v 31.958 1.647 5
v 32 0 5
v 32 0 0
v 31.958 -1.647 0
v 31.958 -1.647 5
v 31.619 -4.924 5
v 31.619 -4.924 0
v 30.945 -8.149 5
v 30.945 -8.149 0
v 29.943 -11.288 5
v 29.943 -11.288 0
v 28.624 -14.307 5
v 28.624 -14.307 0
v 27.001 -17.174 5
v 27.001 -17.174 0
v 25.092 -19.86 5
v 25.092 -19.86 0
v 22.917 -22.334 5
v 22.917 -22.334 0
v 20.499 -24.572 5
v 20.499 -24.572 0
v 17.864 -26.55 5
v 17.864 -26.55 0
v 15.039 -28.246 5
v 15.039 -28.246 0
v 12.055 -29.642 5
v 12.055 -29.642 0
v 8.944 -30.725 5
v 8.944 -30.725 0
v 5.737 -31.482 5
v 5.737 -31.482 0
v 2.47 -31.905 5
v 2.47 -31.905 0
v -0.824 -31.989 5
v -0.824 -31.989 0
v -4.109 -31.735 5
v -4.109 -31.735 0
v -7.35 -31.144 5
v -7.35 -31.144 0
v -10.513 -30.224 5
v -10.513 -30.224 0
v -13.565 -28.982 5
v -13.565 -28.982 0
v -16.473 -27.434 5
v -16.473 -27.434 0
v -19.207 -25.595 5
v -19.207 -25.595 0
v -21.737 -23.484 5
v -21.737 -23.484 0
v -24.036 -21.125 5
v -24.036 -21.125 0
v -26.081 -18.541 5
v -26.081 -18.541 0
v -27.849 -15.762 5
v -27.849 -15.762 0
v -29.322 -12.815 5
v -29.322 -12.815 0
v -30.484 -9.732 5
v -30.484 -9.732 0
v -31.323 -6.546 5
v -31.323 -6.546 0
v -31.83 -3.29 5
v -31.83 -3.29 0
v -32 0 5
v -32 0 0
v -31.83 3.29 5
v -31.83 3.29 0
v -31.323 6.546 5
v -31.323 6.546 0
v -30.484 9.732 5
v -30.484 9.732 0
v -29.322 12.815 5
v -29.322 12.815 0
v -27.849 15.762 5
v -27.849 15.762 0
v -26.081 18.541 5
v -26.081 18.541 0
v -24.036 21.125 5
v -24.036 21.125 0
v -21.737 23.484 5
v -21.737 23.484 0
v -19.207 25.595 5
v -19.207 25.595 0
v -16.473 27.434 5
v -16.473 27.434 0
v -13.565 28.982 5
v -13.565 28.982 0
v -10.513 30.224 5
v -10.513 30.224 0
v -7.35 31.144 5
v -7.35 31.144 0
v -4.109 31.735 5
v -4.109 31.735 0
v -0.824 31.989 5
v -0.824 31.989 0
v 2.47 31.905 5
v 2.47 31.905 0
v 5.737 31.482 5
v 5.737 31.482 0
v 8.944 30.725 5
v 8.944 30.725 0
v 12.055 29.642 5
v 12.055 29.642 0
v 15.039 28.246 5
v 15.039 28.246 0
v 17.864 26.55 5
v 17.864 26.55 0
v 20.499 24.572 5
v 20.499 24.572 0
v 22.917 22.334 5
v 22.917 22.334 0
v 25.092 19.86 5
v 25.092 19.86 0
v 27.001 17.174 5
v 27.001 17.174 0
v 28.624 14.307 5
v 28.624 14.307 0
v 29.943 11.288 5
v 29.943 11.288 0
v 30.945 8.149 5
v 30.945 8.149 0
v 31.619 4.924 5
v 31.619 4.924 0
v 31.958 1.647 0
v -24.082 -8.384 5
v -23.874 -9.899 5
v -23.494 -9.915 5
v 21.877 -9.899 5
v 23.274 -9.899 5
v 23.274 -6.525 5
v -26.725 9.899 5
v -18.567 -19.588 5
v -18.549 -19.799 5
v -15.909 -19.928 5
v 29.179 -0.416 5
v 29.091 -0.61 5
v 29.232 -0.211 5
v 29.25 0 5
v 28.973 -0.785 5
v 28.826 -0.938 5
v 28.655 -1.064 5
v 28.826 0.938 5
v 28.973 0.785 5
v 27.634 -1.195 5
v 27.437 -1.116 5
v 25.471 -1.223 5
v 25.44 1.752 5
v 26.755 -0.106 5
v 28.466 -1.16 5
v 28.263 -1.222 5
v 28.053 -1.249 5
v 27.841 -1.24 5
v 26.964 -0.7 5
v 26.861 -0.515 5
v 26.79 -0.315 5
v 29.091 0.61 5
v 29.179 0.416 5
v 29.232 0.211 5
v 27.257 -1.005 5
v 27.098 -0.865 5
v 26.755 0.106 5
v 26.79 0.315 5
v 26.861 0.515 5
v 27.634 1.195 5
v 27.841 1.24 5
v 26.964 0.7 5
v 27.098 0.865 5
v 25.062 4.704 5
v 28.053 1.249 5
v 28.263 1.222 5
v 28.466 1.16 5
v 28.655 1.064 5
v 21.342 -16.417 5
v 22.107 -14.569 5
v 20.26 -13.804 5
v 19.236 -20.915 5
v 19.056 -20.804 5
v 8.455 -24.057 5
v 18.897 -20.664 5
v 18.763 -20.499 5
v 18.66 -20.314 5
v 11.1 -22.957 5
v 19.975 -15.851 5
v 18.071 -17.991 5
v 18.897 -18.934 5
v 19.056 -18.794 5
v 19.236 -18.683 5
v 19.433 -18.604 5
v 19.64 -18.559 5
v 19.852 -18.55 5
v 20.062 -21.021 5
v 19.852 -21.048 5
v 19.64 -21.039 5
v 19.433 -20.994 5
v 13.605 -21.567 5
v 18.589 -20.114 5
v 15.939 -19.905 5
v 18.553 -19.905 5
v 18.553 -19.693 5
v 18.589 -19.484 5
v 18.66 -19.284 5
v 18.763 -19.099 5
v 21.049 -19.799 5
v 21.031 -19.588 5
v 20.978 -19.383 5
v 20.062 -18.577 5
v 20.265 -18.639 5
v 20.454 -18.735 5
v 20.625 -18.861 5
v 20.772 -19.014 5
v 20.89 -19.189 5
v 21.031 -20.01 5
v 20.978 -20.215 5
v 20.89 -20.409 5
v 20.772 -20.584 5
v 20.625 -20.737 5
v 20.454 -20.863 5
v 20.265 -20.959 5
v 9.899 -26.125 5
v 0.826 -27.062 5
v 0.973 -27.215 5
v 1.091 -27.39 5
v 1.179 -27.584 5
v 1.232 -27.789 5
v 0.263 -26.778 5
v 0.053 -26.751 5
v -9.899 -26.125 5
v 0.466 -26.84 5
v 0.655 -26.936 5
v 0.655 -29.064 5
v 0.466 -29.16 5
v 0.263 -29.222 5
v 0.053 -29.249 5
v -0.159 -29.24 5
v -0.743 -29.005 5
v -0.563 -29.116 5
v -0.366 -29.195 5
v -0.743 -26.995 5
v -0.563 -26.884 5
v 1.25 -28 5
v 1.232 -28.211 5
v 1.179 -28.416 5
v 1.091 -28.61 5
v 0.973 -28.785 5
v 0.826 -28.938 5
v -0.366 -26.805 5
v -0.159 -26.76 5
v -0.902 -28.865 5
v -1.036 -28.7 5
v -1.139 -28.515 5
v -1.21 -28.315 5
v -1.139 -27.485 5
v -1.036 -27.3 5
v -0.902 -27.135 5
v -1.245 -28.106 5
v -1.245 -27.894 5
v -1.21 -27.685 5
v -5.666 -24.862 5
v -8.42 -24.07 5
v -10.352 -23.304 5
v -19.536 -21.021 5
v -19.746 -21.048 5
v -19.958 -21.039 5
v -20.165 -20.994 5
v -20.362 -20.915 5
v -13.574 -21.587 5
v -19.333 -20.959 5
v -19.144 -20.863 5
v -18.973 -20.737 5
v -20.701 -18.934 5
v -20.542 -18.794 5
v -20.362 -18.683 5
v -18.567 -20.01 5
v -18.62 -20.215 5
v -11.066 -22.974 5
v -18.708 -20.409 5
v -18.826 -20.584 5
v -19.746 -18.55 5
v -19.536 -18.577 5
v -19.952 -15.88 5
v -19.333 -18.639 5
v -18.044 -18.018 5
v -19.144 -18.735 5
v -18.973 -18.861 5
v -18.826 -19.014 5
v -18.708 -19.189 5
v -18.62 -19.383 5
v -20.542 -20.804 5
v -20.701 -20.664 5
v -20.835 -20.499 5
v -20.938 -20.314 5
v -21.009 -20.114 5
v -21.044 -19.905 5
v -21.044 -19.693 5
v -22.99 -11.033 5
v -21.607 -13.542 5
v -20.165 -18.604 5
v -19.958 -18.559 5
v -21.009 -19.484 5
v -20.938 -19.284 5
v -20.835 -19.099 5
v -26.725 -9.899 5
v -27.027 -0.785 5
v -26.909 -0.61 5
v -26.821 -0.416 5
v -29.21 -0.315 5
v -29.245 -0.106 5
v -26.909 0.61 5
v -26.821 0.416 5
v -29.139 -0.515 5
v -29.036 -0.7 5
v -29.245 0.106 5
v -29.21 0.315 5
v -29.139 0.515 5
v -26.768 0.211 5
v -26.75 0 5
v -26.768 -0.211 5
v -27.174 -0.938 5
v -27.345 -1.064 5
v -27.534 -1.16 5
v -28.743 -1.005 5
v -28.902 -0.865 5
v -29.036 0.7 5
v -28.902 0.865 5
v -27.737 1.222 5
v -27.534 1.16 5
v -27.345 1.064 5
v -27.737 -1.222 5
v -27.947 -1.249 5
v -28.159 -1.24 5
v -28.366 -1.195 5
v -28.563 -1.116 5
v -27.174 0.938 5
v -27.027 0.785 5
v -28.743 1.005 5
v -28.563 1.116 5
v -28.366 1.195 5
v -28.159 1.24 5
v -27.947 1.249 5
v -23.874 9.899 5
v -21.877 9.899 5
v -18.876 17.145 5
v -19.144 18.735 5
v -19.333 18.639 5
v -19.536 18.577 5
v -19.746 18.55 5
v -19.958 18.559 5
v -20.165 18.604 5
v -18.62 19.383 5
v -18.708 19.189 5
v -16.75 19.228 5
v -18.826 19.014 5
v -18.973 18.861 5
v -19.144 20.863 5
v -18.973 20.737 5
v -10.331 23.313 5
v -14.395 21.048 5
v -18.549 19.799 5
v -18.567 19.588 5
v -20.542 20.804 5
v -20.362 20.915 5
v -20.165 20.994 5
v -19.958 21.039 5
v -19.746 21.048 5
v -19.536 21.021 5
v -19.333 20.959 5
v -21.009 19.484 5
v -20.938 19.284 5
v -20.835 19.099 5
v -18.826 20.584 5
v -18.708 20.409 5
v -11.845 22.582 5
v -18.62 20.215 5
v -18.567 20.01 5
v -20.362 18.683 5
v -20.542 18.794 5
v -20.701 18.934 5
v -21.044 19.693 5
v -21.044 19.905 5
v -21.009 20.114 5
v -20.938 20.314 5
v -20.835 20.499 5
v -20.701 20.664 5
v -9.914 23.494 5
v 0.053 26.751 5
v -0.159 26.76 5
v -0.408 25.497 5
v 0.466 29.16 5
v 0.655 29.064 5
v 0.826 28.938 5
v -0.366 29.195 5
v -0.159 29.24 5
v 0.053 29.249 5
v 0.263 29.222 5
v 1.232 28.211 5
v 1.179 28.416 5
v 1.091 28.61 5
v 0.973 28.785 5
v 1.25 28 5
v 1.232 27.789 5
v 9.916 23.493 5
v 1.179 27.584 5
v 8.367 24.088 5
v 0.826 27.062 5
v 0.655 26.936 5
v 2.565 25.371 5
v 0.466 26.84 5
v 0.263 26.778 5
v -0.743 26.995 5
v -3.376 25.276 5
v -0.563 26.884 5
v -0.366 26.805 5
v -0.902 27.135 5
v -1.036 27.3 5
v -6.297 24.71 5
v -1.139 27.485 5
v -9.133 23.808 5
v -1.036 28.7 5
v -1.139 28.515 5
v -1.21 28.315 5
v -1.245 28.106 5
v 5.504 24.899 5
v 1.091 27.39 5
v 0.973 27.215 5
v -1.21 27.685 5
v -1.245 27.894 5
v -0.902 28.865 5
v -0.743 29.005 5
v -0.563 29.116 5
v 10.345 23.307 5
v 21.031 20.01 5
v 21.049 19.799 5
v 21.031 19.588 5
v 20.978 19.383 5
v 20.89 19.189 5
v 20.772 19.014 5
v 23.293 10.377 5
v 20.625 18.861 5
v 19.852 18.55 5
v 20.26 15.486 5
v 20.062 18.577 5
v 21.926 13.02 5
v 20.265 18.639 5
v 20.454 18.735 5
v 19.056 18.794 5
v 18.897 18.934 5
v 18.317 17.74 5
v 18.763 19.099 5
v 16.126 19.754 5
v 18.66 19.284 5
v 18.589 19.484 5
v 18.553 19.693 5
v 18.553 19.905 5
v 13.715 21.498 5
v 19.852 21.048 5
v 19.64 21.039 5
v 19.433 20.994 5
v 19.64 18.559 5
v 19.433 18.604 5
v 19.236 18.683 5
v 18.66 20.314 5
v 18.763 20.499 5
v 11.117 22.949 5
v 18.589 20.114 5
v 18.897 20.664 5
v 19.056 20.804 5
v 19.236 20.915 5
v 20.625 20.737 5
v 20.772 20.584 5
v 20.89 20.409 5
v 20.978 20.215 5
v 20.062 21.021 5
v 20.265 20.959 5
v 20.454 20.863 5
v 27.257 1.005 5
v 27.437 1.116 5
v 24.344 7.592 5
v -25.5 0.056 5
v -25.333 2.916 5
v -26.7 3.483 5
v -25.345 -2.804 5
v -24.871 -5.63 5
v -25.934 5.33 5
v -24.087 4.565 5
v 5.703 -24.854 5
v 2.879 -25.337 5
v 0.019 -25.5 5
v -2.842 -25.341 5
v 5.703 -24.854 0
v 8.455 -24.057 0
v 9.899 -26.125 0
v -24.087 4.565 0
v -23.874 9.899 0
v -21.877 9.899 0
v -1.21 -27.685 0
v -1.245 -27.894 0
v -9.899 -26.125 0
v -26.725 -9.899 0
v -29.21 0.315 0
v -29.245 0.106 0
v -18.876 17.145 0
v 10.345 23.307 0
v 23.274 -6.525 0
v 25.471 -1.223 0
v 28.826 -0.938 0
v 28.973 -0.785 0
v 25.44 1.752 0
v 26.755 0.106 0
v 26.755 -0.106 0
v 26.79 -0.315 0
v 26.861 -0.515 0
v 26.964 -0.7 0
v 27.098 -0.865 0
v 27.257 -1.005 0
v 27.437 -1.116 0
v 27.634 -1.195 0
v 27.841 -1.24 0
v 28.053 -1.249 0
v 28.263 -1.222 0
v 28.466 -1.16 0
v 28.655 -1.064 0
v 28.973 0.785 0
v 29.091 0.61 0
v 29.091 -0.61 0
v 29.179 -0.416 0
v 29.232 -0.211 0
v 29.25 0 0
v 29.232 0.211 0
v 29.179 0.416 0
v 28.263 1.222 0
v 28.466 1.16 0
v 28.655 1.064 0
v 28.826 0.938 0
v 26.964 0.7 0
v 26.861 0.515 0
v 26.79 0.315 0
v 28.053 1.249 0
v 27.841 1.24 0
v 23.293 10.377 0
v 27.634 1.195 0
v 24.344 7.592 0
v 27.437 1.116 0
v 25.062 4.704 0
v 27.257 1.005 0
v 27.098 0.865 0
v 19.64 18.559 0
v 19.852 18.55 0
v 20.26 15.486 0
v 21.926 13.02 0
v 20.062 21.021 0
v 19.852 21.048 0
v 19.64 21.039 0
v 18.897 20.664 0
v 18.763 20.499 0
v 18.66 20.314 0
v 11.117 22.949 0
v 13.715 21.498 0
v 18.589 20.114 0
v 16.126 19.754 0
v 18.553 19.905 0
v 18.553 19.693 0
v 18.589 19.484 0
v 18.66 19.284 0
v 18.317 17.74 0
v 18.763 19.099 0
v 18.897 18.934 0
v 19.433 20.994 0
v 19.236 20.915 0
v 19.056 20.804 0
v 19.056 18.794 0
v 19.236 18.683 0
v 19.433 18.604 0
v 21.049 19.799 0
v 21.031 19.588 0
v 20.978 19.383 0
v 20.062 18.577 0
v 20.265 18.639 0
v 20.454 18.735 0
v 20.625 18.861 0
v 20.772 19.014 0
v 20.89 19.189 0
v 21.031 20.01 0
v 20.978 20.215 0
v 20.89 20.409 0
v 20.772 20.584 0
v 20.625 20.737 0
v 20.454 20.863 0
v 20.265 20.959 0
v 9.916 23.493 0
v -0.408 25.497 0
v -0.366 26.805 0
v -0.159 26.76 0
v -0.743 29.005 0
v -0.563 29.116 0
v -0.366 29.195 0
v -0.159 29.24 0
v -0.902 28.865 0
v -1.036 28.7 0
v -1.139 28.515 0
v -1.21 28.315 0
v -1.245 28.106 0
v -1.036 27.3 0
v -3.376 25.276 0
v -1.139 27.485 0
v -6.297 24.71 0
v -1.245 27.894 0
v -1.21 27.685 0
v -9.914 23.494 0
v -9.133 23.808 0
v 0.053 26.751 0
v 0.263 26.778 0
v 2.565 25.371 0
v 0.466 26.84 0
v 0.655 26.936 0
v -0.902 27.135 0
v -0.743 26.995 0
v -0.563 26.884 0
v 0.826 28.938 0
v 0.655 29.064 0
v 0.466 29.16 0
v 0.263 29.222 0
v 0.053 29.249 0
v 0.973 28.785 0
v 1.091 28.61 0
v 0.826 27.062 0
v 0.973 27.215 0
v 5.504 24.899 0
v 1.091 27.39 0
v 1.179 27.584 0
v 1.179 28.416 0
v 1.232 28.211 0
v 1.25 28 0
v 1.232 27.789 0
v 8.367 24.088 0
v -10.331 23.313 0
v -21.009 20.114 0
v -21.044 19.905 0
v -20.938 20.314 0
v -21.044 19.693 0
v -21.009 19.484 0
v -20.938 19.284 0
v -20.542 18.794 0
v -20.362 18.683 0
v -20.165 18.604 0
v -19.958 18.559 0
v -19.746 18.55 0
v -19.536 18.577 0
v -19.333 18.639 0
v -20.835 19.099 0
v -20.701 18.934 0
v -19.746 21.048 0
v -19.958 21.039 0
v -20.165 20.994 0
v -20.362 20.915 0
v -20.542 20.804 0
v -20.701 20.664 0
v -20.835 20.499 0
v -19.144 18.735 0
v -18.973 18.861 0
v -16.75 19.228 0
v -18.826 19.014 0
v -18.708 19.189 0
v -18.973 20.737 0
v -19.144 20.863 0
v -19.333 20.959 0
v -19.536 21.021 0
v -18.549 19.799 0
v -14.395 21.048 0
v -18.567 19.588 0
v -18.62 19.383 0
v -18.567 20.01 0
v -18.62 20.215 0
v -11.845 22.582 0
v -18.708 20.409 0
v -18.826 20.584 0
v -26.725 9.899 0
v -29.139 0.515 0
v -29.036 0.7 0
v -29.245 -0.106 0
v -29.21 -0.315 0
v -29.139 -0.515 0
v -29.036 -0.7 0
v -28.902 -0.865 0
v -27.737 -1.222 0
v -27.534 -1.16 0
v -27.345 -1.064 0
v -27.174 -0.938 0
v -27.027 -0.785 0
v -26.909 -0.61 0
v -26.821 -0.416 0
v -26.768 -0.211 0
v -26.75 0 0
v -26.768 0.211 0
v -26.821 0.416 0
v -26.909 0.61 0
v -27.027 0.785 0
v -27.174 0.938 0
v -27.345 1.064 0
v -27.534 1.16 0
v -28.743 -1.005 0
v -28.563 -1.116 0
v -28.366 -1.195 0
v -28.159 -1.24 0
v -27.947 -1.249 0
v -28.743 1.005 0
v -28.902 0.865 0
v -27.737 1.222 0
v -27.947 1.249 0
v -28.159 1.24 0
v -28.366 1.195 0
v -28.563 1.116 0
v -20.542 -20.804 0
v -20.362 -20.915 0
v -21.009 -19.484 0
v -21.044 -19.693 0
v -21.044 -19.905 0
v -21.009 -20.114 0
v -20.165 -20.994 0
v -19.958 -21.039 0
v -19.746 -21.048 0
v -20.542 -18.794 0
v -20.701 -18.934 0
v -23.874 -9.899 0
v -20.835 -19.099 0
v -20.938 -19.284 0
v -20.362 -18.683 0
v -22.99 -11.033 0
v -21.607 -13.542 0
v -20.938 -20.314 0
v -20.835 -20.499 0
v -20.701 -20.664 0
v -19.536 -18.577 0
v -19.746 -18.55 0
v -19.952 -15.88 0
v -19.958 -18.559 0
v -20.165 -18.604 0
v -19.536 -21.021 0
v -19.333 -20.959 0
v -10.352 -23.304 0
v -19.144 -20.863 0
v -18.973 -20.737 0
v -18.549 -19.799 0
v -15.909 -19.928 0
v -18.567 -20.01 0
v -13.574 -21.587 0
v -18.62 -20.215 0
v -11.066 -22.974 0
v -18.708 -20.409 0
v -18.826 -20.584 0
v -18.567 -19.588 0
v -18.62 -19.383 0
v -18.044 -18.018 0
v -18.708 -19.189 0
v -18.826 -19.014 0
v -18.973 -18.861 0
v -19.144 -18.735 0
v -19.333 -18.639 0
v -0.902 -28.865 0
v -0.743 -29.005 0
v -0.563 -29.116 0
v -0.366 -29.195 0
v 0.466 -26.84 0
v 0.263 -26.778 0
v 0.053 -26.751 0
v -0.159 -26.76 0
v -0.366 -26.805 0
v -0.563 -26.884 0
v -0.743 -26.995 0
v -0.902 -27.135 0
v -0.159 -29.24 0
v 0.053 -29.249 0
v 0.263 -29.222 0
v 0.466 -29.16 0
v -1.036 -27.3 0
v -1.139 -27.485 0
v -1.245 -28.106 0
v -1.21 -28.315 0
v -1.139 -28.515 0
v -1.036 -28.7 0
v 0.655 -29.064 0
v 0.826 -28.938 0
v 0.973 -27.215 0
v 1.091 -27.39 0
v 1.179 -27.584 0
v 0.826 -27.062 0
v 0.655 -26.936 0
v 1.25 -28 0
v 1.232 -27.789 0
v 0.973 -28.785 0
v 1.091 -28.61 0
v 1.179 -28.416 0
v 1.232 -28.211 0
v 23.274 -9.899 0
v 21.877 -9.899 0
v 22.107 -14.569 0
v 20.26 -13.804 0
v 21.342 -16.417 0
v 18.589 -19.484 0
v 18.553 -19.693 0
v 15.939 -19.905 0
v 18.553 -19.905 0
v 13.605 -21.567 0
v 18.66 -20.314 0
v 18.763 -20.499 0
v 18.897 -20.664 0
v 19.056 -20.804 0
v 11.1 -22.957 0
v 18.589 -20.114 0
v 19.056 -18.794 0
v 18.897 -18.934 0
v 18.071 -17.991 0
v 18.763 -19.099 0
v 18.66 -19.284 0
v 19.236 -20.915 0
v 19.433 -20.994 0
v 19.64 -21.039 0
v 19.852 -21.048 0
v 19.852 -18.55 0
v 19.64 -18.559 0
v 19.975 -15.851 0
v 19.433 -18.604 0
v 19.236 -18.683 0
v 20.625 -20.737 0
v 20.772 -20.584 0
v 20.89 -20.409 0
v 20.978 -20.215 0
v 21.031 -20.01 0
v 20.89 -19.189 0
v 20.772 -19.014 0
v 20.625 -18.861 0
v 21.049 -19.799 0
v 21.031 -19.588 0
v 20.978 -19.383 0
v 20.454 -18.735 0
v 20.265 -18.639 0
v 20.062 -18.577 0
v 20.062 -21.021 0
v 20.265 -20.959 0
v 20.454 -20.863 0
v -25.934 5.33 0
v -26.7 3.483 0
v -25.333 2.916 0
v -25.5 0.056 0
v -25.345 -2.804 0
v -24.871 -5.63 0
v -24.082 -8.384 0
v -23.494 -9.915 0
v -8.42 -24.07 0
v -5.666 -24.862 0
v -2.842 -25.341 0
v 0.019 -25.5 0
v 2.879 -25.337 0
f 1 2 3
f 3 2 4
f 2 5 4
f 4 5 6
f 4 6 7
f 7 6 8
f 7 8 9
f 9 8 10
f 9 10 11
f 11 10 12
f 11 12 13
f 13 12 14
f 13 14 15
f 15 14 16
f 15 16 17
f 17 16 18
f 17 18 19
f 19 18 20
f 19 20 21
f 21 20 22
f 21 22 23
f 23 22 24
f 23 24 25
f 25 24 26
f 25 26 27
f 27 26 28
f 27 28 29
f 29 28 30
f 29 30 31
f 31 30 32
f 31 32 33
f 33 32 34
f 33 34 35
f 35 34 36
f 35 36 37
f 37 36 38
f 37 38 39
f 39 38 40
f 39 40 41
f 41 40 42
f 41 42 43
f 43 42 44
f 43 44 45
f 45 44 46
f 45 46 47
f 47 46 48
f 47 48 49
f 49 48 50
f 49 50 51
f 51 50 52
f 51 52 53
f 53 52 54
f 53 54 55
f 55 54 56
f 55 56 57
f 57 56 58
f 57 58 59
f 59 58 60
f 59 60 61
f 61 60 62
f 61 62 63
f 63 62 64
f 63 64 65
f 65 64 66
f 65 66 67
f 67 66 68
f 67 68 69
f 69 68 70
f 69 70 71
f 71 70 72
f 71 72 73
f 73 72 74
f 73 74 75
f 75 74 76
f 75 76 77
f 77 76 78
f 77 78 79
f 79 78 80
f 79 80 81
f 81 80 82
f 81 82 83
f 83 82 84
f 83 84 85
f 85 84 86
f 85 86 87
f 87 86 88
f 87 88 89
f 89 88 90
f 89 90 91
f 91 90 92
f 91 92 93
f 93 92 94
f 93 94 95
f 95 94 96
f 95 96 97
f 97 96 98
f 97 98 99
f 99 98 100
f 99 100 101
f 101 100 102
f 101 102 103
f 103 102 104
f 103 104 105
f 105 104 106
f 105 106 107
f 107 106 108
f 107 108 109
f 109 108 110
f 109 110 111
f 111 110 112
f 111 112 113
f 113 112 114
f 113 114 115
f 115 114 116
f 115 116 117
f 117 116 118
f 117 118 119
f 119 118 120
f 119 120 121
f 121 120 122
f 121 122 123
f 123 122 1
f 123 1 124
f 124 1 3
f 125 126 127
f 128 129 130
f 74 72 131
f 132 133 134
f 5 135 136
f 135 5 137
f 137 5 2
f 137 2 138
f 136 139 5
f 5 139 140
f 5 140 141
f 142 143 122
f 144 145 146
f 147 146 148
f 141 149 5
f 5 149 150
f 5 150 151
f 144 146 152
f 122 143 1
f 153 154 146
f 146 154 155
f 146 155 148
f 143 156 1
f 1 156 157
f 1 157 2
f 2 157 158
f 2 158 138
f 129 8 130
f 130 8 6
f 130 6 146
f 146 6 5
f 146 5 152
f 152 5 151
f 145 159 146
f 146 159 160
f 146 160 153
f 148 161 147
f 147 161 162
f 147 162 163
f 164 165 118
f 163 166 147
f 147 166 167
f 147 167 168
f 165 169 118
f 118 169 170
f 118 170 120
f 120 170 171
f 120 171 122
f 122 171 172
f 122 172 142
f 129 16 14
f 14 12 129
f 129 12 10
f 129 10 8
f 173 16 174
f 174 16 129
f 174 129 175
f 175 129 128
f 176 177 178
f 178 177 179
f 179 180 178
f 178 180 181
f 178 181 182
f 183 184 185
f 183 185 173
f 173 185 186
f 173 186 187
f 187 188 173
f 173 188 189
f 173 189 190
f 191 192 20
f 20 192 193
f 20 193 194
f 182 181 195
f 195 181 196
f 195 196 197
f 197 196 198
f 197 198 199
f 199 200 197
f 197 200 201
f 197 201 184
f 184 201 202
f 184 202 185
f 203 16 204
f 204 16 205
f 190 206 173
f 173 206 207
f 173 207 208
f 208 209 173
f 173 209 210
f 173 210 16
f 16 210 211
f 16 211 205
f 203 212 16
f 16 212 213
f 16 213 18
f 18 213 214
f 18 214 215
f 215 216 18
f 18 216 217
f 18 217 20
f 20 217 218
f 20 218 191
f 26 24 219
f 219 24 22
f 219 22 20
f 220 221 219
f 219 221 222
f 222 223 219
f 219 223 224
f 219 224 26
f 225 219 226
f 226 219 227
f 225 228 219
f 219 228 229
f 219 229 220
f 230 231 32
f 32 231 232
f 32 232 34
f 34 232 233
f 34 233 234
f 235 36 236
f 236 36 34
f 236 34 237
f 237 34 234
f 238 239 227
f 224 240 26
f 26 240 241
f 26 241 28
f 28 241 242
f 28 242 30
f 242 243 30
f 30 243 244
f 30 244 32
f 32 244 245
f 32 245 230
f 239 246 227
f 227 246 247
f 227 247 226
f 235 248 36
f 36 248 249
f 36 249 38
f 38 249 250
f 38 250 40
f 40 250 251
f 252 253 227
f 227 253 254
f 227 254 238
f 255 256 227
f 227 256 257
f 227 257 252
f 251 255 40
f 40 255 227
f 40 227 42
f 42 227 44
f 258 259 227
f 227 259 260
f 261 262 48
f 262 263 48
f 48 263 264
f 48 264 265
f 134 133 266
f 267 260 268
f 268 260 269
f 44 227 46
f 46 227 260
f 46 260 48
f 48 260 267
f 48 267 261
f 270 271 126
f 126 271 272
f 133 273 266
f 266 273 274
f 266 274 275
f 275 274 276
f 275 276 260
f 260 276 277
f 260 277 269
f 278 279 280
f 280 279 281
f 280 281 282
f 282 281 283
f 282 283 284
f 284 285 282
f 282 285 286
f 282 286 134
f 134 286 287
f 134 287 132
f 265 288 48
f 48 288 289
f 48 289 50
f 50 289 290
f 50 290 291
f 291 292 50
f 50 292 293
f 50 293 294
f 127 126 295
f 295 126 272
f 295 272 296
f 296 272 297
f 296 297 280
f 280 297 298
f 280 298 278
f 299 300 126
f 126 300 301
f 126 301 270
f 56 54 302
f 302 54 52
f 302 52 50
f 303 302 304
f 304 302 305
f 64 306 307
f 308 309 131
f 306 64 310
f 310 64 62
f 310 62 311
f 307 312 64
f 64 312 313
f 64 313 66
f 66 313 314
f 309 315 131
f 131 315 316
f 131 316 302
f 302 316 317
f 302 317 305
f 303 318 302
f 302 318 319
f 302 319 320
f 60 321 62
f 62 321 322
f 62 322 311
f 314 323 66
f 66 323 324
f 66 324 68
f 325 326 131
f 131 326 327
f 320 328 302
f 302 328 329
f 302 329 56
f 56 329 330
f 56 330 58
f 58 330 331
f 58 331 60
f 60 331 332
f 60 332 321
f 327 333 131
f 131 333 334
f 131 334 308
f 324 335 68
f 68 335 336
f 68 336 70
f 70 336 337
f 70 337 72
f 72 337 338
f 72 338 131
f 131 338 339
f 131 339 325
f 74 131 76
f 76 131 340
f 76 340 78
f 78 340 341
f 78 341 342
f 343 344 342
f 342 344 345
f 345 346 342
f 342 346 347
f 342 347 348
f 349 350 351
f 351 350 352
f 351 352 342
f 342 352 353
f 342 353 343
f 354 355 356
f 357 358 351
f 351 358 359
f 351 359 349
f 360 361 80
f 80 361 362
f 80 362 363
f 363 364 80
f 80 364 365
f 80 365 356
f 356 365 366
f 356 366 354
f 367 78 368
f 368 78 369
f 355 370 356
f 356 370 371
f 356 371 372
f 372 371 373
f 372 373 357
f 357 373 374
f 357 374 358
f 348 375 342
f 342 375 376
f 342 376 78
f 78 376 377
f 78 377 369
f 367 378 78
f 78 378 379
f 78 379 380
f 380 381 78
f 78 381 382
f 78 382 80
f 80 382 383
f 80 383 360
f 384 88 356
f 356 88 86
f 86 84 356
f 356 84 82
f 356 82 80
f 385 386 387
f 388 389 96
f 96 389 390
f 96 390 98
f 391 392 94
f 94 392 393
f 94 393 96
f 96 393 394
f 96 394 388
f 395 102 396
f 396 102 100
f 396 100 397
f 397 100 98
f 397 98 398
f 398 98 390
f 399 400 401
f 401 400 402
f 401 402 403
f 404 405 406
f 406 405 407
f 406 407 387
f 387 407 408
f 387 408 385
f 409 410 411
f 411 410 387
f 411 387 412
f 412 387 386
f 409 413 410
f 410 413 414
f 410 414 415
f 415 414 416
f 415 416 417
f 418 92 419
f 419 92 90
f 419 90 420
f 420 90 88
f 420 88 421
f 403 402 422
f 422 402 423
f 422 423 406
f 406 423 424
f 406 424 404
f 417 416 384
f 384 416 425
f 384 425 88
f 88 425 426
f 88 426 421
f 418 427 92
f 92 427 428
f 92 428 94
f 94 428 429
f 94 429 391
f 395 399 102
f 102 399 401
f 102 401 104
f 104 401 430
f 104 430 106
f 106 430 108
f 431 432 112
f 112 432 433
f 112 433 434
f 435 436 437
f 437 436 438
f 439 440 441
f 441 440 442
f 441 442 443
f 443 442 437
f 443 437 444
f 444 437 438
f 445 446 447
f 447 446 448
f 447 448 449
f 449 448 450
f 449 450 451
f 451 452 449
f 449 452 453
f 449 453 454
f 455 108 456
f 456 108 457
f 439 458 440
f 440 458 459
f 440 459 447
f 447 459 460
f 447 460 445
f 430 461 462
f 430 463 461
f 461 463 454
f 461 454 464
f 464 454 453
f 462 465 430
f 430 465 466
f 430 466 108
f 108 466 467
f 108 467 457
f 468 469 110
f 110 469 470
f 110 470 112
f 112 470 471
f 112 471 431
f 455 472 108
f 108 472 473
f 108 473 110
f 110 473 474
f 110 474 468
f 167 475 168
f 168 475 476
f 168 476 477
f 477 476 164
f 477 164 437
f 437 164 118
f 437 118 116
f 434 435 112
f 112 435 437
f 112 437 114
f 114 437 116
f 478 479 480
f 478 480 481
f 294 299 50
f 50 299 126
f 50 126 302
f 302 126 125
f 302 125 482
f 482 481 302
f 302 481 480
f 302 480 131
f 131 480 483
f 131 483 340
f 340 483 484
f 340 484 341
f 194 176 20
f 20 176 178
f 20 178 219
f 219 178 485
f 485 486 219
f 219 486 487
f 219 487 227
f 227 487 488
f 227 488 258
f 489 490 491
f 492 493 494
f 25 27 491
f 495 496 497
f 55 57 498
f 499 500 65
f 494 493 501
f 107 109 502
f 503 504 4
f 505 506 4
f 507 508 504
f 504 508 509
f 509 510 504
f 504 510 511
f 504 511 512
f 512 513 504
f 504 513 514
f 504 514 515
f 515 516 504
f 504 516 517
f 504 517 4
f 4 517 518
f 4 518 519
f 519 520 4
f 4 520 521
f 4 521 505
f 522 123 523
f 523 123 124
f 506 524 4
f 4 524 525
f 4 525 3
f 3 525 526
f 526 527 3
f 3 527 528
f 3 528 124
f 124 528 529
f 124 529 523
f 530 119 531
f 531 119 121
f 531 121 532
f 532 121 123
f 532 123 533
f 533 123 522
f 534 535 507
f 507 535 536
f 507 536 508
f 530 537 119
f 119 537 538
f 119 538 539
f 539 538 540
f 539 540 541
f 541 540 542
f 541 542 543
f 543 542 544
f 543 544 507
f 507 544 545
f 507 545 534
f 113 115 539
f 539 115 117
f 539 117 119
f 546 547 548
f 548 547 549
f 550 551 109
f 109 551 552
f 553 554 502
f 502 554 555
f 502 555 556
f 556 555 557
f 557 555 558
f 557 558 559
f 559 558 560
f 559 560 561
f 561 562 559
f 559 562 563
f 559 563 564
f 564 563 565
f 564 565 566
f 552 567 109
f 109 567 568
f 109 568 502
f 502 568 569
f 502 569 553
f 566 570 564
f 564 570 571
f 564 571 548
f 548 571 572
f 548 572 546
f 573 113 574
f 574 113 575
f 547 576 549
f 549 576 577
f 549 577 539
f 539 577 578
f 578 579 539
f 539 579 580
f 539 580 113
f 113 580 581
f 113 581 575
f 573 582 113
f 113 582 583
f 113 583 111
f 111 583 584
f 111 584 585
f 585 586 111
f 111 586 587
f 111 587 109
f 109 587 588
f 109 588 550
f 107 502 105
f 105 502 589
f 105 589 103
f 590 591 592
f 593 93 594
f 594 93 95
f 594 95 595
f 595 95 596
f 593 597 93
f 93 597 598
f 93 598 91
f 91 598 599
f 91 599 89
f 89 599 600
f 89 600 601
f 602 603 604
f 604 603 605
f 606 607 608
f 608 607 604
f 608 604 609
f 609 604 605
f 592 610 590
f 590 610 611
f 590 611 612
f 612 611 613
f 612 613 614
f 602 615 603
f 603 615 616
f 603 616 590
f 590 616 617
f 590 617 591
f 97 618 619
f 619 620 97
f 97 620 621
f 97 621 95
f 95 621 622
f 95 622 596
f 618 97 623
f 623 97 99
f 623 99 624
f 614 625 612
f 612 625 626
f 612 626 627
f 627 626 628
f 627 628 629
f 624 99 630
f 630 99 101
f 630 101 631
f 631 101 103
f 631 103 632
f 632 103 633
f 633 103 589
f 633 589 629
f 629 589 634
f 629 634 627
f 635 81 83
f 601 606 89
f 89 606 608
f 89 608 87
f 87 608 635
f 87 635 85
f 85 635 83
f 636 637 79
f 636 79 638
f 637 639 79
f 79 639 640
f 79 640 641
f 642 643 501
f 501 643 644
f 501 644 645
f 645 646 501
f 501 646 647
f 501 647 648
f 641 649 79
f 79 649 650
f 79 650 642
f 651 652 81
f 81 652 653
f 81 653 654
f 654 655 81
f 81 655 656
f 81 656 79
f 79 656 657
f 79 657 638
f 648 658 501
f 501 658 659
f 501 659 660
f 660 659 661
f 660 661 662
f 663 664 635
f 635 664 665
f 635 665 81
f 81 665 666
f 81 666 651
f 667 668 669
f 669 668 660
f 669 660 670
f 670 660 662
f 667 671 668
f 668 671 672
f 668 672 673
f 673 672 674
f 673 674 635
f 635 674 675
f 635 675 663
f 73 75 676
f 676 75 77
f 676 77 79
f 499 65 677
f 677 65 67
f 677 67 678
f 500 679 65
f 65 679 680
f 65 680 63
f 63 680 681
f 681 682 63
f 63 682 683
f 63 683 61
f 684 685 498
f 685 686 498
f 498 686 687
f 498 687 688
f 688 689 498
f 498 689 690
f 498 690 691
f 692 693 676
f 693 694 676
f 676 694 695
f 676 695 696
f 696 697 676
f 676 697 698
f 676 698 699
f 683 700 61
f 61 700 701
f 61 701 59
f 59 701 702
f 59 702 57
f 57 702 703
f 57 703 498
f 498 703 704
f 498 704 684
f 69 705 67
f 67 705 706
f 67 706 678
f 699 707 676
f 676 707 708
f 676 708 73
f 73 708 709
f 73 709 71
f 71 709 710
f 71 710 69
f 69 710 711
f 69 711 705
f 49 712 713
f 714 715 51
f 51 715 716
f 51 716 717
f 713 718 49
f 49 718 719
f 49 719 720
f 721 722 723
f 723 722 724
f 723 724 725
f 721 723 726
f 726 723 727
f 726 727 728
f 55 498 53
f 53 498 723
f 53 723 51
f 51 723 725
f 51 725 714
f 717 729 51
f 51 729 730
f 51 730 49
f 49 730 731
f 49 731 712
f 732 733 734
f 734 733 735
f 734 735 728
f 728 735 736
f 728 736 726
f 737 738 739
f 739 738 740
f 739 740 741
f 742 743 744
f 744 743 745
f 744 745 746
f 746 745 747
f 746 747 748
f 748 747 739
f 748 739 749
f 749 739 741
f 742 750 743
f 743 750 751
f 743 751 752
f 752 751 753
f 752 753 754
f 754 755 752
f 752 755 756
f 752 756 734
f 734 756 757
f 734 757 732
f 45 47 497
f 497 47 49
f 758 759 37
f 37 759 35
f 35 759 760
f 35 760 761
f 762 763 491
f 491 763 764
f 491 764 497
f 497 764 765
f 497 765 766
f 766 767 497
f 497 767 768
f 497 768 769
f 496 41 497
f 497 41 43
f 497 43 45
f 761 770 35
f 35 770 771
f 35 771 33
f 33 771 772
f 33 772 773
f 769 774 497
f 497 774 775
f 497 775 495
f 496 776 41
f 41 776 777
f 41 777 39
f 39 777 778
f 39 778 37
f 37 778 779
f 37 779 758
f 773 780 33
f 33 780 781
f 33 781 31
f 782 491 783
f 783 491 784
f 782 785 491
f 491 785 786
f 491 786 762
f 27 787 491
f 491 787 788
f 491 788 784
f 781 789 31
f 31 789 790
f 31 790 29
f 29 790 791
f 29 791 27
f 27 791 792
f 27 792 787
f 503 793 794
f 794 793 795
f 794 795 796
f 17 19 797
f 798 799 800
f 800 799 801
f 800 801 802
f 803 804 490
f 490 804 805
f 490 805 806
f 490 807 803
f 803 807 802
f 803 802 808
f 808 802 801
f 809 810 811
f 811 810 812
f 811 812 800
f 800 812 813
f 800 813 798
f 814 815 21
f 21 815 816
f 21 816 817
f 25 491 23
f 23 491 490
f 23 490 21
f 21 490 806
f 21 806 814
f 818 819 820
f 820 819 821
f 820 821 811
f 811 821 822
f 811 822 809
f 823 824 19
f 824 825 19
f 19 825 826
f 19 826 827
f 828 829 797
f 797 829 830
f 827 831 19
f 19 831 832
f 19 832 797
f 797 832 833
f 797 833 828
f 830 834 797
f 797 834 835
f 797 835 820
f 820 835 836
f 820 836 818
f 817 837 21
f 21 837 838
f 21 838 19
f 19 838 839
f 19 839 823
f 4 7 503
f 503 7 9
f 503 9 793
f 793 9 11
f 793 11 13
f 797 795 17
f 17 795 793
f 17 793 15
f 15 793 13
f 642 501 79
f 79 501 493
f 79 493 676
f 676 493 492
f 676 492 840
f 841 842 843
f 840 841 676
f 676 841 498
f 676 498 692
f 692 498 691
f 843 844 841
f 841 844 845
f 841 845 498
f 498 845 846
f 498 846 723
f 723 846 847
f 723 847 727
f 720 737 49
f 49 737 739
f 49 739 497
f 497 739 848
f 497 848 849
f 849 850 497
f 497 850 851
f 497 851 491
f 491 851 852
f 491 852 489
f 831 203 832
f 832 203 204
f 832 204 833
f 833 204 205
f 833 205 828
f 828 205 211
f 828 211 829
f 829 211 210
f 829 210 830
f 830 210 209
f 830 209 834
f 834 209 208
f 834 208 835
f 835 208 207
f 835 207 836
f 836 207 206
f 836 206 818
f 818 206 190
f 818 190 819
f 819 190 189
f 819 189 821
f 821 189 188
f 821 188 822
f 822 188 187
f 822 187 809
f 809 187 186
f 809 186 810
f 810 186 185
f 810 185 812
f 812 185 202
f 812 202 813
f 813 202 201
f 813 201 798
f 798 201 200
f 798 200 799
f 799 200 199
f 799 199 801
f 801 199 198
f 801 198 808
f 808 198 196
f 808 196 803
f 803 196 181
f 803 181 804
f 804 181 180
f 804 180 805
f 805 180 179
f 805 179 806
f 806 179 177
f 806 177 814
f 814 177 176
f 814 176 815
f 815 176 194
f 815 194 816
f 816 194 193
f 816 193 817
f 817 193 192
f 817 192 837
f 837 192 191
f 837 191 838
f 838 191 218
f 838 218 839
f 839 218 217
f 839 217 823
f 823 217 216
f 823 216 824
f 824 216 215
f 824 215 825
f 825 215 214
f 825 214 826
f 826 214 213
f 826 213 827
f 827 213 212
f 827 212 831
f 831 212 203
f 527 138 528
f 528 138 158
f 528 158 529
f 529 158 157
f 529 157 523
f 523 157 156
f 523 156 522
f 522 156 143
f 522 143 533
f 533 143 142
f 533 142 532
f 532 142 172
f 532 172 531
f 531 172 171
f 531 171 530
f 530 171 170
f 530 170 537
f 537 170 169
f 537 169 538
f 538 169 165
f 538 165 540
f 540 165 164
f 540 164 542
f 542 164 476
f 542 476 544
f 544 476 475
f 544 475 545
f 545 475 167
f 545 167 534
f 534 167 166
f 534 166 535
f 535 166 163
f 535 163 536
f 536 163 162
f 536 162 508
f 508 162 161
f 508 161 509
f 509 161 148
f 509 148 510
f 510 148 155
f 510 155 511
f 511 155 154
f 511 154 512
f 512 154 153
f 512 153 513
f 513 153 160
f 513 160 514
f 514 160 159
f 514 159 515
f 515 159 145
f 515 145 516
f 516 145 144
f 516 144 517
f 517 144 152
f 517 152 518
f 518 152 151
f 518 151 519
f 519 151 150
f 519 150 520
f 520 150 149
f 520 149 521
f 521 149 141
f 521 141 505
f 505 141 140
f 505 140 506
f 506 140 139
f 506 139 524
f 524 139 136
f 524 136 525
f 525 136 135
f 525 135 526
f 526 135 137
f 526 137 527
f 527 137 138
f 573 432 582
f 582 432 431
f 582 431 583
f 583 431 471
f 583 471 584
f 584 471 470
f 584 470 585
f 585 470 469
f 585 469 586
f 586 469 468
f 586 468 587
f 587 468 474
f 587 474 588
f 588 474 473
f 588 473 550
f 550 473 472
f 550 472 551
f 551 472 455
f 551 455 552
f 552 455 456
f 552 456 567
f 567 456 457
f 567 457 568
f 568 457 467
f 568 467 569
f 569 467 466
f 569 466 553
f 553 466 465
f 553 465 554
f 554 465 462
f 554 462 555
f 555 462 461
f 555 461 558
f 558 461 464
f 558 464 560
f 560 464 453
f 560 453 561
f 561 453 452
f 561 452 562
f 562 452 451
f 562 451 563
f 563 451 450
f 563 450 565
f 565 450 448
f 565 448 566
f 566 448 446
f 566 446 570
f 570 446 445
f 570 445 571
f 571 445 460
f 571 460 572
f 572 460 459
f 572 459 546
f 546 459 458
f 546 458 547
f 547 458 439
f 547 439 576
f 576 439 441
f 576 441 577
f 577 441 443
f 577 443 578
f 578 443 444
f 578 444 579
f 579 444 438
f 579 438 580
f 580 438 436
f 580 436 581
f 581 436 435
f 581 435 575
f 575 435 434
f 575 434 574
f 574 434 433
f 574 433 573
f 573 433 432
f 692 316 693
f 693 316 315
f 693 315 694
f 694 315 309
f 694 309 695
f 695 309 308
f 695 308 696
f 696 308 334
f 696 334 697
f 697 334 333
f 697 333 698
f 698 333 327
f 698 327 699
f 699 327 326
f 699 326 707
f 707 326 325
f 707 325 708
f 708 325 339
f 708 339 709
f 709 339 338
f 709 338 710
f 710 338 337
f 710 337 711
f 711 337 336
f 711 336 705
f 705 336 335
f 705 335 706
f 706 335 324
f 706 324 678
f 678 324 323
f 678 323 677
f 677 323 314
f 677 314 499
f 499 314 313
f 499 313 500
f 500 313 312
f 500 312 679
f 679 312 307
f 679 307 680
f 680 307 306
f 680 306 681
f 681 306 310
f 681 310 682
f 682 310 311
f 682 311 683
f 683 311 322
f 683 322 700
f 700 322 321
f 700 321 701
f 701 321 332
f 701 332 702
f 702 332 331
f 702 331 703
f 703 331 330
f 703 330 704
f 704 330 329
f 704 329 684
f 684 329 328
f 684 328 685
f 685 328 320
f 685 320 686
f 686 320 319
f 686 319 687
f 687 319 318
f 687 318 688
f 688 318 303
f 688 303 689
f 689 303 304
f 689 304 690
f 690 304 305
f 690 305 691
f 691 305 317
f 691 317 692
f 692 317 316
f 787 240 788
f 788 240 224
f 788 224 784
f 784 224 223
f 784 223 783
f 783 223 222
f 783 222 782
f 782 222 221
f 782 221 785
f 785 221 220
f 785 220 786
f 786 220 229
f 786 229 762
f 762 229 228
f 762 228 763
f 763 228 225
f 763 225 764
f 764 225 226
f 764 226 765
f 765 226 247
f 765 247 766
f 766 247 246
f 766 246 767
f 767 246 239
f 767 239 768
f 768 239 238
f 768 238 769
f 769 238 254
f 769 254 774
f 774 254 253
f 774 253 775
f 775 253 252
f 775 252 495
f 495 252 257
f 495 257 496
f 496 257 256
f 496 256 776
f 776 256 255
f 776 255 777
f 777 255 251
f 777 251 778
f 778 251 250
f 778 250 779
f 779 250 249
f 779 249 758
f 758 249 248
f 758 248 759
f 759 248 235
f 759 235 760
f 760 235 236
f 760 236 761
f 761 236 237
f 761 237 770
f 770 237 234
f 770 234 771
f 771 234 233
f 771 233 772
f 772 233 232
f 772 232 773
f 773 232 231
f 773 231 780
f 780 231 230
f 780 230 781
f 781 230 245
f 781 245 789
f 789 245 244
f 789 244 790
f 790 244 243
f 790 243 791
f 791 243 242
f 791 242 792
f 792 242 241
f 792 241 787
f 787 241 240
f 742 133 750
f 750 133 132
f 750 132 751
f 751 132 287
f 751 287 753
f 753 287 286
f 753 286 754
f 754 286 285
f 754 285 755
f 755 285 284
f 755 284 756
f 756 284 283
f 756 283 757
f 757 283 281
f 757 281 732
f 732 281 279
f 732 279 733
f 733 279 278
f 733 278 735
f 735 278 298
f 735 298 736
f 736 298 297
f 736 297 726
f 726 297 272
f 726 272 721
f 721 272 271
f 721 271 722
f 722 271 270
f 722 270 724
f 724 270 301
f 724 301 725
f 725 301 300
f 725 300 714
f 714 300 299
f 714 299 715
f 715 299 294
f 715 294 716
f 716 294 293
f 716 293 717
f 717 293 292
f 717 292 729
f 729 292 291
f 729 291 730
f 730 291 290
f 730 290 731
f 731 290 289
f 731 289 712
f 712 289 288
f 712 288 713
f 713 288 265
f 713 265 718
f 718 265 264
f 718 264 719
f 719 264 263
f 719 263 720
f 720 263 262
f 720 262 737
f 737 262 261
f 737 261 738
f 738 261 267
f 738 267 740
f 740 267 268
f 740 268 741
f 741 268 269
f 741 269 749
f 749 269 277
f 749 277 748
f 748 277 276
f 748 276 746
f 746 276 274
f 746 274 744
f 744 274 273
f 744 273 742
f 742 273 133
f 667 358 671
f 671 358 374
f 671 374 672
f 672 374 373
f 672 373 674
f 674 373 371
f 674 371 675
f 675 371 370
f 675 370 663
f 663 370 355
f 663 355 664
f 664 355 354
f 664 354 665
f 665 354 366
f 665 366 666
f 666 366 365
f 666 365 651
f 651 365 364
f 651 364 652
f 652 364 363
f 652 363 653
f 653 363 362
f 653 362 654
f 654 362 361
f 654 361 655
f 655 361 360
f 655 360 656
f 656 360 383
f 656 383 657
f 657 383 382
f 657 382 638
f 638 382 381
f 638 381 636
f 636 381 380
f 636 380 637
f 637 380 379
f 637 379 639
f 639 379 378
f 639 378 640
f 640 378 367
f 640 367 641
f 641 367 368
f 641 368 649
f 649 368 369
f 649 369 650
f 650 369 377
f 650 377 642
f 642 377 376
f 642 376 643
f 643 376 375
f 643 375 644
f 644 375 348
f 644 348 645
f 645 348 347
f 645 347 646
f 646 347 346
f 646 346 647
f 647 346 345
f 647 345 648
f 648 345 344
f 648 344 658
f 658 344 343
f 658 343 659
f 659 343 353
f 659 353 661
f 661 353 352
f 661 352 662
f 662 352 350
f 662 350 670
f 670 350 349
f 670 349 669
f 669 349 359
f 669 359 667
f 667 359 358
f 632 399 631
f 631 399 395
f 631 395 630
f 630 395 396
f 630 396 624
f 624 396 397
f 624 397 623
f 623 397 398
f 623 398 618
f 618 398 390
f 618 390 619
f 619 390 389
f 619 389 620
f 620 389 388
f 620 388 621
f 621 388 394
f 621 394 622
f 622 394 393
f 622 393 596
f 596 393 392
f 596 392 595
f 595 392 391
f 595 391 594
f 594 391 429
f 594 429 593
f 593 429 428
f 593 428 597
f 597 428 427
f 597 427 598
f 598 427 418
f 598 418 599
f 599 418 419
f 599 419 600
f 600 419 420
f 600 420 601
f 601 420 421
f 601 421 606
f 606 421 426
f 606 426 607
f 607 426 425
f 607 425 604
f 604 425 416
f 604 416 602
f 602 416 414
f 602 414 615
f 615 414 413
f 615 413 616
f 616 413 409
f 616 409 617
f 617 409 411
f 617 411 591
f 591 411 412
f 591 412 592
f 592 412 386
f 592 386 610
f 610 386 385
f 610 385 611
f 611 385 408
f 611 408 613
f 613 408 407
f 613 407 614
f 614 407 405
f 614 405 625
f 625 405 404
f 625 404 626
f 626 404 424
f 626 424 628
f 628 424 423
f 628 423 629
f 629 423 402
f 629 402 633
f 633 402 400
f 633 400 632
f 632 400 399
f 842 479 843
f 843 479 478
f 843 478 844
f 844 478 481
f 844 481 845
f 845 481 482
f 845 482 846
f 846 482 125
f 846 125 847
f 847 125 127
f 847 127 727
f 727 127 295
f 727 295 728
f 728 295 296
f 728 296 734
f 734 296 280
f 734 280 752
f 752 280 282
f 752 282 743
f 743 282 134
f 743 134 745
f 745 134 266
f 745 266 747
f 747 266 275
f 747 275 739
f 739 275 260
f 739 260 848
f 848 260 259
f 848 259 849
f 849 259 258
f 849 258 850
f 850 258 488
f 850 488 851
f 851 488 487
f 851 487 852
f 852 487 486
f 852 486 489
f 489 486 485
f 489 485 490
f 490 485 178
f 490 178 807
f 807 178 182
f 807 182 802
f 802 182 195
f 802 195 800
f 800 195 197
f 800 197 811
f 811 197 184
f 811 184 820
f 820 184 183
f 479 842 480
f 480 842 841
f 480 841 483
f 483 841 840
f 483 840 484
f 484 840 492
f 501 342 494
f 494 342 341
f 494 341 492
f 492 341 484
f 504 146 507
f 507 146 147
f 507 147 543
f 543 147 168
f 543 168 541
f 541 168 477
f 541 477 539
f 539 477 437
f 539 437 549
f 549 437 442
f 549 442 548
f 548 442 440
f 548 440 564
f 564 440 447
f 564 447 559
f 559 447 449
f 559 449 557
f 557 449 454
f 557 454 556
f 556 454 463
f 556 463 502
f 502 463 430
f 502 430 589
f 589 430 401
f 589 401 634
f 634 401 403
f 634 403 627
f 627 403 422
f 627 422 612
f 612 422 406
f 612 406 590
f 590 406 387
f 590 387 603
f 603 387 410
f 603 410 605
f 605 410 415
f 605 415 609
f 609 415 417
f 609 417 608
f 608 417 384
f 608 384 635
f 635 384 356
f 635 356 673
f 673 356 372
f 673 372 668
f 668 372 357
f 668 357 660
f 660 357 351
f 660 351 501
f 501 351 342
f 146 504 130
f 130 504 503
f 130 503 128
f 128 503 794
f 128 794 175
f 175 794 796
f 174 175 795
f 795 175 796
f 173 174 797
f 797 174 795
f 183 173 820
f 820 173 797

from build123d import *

# Parameters (mm, degrees)
CROQUIS1_R              = 32
SALIENTE_EXTRUIR1_DEPTH = 5
CROQUIS2_R              = 1.25
CORTAR_EXTRUIR1_DEPTH   = 46.530209751
CORTAR_EXTRUIR2_DEPTH   = 10


with BuildPart() as part:
    # Croquis1 → Saliente-Extruir1 (new body)
    with BuildSketch(Plane.XY):
        Circle(CROQUIS1_R)
    extrude(amount=SALIENTE_EXTRUIR1_DEPTH)

    # Croquis2 → Cortar-Extruir1 (cut, through all)
    with BuildSketch(Plane.XY.offset(5)):
        with Locations((0, 28)):
            Circle(CROQUIS2_R)
        with Locations((19.798989873, 19.798989873)):
            Circle(CROQUIS2_R)
        with Locations((28, 0)):
            Circle(CROQUIS2_R)
        with Locations((19.798989873, -19.798989873)):
            Circle(CROQUIS2_R)
        with Locations((0, -28)):
            Circle(CROQUIS2_R)
        with Locations((-19.798989873, -19.798989873)):
            Circle(CROQUIS2_R)
        with Locations((-28, 0)):
            Circle(CROQUIS2_R)
        with Locations((-19.798989873, 19.798989873)):
            Circle(CROQUIS2_R)
    extrude(amount=-CORTAR_EXTRUIR1_DEPTH, mode=Mode.SUBTRACT)

    # Croquis3 → Cortar-Extruir2 (cut)
    with BuildSketch(Plane.XY.offset(5)):
        with BuildLine():
            Line((-18.875585354, 17.145328155), (-24.086525942, 4.565004714))
            Line((-24.086525942, 4.565004714), (-25.934285007, 5.330371579))
            Line((-25.934285007, 5.330371579), (-26.699651872, 3.482612514))
            Line((-26.699651872, 3.482612514), (-25.332679411, 2.916393981))
            ThreePointArc((-25.332679411, 2.916393981), (-9.758427525, -23.558928079), (19.975111358, -15.850707436))
            Line((19.975111358, -15.850707436), (21.342083819, -16.416925969))
            Line((21.342083819, -16.416925969), (22.107450683, -14.569166904))
            Line((22.107450683, -14.569166904), (20.259691618, -13.803800039))
            Line((20.259691618, -13.803800039), (25.470632207, -1.223476598))
            ThreePointArc((25.470632207, -1.223476598), (9.758427525, 23.558928079), (-18.875585354, 17.145328155))
        make_face()
    extrude(amount=-CORTAR_EXTRUIR2_DEPTH, mode=Mode.SUBTRACT)


solid = part.part
